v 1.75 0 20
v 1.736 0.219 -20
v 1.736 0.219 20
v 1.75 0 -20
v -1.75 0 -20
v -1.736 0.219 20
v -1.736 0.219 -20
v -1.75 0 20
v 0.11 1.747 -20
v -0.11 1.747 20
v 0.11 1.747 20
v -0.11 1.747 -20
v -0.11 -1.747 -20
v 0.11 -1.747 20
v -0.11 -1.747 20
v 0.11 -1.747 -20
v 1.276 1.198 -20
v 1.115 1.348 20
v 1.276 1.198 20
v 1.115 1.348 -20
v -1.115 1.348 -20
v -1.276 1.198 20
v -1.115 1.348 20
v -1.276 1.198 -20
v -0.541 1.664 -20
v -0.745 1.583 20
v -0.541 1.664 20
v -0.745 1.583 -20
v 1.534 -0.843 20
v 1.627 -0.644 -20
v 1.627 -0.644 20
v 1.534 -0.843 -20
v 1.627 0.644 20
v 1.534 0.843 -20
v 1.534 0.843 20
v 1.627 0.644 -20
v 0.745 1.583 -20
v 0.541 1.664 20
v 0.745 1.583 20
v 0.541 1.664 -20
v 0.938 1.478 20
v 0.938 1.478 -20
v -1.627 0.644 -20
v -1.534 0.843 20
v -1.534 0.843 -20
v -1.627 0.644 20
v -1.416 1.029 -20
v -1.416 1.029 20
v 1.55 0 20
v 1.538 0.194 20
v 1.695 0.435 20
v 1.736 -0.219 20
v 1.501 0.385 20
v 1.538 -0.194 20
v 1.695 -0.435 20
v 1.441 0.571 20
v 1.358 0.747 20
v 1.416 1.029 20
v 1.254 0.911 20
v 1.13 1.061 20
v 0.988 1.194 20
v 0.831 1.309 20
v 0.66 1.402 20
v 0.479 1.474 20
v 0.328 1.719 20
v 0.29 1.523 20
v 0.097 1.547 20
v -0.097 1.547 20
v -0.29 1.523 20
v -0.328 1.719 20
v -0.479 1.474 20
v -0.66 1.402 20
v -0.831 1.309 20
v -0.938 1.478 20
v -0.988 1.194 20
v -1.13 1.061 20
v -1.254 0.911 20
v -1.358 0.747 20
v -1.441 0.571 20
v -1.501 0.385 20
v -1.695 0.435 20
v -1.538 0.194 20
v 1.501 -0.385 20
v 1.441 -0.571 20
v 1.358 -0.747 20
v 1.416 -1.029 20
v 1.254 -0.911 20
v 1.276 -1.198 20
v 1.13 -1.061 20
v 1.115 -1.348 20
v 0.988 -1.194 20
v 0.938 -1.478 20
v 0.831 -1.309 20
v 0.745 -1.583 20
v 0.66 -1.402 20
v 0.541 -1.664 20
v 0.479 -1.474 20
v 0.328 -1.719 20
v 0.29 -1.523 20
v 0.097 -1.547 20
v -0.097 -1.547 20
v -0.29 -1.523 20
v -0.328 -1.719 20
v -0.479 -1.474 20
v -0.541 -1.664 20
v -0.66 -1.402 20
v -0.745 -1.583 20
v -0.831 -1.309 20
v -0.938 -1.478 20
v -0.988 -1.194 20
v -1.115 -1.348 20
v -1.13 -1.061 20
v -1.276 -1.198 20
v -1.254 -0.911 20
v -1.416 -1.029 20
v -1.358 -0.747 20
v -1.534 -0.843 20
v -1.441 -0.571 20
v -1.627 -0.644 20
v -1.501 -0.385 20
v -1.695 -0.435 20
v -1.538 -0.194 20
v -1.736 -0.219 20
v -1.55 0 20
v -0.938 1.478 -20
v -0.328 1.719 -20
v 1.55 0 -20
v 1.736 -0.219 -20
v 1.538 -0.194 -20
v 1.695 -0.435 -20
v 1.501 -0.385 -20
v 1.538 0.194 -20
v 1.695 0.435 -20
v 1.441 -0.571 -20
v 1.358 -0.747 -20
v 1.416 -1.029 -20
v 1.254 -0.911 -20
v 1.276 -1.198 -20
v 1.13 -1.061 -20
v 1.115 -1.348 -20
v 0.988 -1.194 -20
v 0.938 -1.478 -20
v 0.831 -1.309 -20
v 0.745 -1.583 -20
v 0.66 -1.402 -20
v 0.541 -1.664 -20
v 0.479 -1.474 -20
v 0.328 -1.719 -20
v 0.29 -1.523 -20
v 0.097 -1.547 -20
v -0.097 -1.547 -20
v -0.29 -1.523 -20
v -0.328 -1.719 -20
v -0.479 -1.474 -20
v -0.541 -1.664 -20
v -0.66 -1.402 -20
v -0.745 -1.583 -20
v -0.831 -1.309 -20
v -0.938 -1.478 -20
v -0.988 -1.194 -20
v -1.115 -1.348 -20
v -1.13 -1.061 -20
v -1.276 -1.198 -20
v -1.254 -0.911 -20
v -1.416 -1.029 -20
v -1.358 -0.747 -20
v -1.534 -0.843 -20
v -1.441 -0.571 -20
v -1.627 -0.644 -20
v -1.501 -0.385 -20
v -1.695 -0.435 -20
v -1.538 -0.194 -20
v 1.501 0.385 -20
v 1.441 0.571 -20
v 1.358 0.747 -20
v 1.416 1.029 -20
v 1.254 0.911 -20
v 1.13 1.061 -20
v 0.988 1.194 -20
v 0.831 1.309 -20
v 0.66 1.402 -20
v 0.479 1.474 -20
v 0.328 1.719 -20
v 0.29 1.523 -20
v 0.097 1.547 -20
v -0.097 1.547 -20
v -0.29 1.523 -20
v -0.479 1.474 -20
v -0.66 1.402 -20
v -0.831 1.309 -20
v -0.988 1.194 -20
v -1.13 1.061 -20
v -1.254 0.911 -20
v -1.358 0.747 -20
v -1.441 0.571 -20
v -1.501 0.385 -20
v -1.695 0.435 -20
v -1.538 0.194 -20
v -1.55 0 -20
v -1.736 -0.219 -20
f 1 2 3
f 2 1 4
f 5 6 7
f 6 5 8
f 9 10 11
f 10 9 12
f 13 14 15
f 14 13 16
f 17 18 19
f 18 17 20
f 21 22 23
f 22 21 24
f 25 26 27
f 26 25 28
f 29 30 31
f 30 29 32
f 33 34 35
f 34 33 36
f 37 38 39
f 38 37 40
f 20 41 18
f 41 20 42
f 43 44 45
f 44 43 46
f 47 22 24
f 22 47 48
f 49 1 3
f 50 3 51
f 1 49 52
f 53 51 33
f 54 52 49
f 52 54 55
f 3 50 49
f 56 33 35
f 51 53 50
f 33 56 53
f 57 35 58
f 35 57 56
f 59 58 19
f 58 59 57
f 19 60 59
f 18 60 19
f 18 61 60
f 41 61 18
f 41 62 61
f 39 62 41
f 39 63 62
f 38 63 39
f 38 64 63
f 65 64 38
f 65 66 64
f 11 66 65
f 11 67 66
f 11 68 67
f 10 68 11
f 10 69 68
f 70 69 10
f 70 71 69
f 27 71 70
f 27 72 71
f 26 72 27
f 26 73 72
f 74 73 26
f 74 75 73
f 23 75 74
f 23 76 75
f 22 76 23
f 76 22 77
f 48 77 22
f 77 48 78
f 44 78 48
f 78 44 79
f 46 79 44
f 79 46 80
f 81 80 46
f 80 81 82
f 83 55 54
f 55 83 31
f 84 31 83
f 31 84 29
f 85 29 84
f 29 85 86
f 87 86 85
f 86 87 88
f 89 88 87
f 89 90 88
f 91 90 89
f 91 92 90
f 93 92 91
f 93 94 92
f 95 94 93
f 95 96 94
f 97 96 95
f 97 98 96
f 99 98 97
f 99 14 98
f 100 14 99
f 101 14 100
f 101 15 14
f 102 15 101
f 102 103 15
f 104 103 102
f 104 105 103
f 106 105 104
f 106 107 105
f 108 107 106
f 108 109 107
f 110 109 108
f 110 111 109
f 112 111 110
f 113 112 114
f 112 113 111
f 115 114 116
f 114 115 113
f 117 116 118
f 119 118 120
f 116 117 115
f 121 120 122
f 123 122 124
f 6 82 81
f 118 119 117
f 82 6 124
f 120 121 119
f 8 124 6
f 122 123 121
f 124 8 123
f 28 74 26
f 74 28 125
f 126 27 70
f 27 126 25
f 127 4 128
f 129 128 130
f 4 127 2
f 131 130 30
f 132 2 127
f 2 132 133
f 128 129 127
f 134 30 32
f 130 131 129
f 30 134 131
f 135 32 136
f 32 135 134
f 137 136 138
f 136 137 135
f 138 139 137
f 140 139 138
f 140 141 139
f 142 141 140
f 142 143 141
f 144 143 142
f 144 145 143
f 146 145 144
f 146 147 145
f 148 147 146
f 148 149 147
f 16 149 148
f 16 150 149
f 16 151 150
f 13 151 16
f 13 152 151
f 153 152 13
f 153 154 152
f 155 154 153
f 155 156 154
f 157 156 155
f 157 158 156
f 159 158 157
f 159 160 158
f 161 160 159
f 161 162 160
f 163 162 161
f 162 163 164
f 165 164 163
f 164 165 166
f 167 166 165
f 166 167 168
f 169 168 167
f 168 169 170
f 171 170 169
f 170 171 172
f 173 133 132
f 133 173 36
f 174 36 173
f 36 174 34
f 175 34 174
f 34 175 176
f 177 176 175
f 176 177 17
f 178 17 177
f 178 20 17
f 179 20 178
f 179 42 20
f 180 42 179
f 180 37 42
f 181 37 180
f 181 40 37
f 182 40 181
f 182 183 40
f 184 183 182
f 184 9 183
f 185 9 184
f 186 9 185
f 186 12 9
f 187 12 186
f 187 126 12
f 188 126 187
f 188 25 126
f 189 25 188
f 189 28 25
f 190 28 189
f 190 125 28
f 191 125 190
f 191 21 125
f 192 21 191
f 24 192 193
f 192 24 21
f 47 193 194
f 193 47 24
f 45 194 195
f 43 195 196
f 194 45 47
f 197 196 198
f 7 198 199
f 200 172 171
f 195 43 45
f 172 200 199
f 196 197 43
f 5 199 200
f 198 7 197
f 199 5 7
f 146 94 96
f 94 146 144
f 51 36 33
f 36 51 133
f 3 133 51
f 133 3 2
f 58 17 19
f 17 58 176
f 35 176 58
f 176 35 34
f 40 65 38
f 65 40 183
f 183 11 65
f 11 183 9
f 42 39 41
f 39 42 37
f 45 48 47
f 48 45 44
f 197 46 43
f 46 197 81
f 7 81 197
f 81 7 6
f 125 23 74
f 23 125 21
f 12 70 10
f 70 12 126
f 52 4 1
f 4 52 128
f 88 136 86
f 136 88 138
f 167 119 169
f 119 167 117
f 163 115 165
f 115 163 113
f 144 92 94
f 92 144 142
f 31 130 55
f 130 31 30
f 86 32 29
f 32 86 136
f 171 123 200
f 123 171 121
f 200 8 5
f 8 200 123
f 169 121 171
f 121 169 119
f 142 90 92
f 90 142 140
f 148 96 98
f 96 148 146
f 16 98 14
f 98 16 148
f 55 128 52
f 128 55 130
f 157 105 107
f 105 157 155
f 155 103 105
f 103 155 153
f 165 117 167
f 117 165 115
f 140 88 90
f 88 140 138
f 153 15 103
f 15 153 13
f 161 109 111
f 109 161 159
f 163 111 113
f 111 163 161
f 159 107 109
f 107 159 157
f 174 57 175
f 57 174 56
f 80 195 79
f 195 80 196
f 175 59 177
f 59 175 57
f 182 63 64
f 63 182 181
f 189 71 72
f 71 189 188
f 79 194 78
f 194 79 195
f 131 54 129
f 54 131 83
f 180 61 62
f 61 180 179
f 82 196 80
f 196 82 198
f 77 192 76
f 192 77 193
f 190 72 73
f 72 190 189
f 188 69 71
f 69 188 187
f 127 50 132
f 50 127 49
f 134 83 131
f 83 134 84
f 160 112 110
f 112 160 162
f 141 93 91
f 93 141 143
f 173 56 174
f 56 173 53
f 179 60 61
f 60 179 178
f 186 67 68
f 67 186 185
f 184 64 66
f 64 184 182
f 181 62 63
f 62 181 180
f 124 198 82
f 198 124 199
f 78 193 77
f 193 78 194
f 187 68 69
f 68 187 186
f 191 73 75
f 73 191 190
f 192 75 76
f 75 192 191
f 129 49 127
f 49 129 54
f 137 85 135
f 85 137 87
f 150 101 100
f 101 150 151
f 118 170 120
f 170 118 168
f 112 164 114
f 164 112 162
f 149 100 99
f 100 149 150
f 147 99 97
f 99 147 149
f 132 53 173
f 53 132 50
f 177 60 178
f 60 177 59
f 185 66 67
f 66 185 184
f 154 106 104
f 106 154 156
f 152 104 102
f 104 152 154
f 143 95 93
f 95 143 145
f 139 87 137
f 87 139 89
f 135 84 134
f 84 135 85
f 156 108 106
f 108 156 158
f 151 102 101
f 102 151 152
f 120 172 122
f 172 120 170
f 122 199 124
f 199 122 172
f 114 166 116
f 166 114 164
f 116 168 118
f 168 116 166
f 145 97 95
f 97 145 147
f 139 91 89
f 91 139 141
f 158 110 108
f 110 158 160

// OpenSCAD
$fn = 50;


difference() {
	union() {
		translate(v = [0, 0, -20.0000000000]) {
			cylinder(h = 40, r = 1.7500000000);
		}
	}
	union() {
		translate(v = [0, 0, -100.0000000000]) {
			cylinder(h = 200, r = 1.5500000000);
		}
	}
}
